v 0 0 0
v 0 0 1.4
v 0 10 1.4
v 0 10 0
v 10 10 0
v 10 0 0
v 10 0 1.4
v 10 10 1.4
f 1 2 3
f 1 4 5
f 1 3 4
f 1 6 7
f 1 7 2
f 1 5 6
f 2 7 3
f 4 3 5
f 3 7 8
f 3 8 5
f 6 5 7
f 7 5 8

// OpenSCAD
/* Warning, this is a very basic generator with a lot of approximation 
input data : [LQFP, 2FB, 10x10x1.4mm, 44, , A, C04-21003A]
generated by com.zoubworld.electronics.cad.model3d.Basic
Date : Sun Feb 15 10:50:49 CET 2026
*/

//body
color("black")
translate([0,0,0])
cube([10.0,10.0,1.4], center=false);
